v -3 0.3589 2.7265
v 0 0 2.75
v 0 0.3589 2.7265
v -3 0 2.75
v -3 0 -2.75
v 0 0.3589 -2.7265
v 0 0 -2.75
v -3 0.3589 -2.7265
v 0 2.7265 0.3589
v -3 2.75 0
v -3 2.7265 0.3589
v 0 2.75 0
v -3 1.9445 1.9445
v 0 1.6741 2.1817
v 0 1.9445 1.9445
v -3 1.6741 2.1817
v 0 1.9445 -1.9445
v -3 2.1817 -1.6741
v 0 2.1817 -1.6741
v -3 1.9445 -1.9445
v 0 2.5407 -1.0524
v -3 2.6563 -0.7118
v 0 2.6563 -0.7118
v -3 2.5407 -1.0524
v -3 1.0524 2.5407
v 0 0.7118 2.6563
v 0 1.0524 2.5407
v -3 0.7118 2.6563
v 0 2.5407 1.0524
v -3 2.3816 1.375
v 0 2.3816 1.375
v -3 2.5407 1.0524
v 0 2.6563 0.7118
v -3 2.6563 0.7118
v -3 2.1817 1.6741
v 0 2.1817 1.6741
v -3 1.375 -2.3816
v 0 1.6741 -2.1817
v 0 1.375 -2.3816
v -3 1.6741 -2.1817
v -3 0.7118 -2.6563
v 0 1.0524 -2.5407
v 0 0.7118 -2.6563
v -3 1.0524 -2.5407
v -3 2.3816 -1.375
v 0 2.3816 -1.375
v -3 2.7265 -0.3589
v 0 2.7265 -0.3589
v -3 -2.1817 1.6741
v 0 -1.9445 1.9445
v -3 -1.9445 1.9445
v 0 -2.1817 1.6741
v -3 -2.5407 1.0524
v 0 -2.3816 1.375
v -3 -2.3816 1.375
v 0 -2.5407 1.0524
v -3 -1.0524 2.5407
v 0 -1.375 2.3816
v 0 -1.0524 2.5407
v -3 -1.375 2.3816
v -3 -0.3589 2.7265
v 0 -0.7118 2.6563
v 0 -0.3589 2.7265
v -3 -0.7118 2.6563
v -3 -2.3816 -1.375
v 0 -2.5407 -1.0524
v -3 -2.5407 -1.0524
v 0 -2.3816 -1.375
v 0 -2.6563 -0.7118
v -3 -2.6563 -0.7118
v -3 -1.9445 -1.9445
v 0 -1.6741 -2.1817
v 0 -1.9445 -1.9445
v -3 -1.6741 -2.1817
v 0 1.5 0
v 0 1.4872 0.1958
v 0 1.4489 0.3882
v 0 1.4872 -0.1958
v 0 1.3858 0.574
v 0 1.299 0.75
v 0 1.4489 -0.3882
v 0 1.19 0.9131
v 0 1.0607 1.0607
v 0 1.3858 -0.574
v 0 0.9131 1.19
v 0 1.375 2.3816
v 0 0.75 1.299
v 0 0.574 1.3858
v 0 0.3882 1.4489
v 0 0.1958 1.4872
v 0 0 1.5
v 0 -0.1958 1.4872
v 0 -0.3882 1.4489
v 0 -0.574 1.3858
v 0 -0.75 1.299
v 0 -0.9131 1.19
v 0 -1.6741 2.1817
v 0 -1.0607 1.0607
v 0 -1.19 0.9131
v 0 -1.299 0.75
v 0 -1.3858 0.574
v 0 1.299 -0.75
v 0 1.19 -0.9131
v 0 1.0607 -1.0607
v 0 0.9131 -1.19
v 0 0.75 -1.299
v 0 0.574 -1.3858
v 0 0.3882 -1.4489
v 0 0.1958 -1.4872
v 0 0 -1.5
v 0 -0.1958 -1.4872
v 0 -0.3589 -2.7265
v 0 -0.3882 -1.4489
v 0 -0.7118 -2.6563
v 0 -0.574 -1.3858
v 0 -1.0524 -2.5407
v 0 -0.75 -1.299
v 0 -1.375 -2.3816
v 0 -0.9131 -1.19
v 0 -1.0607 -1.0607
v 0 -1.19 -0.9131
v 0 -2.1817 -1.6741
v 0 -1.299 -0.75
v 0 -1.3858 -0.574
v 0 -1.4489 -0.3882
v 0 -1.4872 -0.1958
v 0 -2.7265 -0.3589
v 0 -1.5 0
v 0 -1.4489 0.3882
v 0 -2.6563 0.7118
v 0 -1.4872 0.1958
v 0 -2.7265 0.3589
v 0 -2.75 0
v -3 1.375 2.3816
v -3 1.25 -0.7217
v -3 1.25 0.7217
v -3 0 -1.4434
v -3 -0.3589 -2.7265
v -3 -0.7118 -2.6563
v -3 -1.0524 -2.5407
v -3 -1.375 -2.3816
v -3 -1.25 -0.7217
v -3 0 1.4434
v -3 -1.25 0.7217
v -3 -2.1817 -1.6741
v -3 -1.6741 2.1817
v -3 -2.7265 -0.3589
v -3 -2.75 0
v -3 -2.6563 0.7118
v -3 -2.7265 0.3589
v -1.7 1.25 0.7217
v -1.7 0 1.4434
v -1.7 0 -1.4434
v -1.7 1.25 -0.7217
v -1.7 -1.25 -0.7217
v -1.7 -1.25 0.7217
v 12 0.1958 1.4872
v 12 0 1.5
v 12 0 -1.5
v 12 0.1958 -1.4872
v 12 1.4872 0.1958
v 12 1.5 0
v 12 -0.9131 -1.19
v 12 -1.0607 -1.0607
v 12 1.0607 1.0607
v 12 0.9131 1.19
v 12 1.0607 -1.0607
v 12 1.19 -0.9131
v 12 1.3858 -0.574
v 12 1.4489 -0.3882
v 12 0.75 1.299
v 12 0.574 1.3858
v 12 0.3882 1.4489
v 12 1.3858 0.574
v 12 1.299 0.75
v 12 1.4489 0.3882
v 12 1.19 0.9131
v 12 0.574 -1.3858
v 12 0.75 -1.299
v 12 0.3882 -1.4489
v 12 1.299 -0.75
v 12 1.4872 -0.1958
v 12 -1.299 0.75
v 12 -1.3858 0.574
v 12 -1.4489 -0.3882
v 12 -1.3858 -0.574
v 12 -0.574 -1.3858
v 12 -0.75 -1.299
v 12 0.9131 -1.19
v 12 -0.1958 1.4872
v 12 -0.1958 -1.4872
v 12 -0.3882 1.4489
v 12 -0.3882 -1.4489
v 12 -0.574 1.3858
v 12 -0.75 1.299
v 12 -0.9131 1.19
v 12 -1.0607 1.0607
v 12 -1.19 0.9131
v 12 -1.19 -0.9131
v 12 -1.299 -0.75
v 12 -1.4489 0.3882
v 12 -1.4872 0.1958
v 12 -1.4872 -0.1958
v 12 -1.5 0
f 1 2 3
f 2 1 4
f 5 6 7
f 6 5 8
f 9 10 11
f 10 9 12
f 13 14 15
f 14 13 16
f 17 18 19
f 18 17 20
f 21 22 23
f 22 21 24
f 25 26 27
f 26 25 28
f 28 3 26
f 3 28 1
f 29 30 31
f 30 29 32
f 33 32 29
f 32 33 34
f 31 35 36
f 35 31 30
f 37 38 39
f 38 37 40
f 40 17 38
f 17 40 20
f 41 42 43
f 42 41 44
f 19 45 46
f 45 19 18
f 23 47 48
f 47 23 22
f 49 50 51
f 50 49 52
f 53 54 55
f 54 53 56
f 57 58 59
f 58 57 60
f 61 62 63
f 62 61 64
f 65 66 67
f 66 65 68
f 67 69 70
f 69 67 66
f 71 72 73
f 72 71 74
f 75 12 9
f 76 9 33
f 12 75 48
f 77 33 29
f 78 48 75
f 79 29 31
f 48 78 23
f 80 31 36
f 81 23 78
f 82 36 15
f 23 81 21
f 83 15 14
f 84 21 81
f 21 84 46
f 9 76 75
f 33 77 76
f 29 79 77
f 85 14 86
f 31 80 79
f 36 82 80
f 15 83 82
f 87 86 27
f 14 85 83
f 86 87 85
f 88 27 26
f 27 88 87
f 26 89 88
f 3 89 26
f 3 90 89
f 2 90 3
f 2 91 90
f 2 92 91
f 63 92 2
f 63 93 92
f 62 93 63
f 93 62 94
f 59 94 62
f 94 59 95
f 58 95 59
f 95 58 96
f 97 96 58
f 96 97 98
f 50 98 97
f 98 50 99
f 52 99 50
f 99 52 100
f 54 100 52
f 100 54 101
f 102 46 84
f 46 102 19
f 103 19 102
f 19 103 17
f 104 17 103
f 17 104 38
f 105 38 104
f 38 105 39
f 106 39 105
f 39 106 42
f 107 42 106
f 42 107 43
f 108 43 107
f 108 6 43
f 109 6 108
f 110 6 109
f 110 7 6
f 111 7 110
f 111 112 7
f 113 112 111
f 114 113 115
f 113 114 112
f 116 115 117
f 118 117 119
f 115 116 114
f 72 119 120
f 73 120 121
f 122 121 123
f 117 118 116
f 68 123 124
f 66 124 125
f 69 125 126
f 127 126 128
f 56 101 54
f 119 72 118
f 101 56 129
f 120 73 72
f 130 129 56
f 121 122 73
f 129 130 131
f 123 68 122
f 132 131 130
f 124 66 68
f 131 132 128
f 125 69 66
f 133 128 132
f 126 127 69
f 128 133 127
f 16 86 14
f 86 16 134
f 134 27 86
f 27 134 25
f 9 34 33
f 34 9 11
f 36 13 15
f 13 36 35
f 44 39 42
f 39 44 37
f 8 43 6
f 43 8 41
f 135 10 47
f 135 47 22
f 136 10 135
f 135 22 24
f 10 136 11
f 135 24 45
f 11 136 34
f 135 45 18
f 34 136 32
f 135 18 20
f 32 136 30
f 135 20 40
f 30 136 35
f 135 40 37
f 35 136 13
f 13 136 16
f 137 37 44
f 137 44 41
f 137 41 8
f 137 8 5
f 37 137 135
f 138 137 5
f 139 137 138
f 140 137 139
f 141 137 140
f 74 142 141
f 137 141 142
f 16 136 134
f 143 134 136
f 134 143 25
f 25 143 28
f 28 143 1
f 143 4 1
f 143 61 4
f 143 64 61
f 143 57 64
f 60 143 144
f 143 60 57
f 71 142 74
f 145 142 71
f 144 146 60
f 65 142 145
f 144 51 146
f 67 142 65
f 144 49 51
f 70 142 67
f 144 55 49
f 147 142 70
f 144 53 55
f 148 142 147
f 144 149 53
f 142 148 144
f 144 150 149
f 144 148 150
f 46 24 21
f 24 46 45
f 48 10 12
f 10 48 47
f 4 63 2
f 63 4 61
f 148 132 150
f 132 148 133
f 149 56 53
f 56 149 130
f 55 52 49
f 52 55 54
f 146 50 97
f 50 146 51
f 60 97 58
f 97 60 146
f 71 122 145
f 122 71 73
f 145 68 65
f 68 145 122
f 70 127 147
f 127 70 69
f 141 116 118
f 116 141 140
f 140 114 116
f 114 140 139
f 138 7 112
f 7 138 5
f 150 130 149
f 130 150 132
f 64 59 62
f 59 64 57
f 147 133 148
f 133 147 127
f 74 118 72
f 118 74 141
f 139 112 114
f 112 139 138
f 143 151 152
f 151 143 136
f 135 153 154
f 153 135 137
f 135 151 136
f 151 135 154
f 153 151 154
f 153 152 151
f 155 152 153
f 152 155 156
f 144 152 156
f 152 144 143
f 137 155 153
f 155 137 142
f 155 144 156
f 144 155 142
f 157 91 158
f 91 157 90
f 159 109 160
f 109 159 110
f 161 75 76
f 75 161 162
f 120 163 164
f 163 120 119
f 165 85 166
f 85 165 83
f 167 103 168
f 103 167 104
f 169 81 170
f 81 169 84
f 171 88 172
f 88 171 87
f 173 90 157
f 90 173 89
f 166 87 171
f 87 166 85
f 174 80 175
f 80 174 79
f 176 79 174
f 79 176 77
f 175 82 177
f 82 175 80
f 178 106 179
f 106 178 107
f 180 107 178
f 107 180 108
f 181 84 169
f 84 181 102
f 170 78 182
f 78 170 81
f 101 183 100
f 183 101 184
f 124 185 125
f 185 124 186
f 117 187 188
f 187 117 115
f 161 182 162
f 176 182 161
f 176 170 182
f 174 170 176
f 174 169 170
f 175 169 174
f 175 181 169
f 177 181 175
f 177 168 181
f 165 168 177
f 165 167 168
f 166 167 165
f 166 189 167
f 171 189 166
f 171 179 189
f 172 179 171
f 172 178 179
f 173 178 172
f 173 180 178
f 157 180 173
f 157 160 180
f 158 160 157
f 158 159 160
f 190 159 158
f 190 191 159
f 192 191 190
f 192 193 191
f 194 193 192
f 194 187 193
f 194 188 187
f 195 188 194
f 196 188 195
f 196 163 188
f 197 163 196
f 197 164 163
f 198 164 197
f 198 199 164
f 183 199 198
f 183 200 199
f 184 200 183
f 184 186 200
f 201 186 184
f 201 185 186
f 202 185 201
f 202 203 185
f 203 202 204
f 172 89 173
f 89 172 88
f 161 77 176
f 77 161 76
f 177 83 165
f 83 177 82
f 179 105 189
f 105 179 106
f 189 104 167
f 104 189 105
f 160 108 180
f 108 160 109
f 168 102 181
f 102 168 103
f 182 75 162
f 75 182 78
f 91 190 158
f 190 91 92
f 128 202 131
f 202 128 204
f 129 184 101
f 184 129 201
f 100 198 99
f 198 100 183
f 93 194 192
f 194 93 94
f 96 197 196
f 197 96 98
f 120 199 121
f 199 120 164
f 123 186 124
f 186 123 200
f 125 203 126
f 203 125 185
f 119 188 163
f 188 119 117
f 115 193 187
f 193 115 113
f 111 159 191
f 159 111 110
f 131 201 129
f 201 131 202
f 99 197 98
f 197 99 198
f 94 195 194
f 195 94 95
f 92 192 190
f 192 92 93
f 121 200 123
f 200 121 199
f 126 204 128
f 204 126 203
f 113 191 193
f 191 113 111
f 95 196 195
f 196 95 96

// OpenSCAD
// file: ../../../lib/nutsnbolts/data-access.scad
// Norm Nuts and Bolts - a OpenSCAD library
// Copyright (C) 2012  Johannes Kneer

// This program is free software: you can redistribute it and/or modify
// it under the terms of the GNU General Public License as published by
// the Free Software Foundation, either version 3 of the License, or
// (at your option) any later version.

// This program is distributed in the hope that it will be useful,
// but WITHOUT ANY WARRANTY; without even the implied warranty of
// MERCHANTABILITY or FITNESS FOR A PARTICULAR PURPOSE.  See the
// GNU General Public License for more details.

// You should have received a copy of the GNU General Public License
// along with this program.  If not, see <http://www.gnu.org/licenses/>.


// DATABASE ACCESS FUNCTIONS AND CONSTANTS



// == CONSTANTS ==

// screw table access keys
_NB_S_DESC            = 0;
_NB_S_FAMKEY			    = 1;
_NB_S_LENGTH          = 2;
_NB_S_NOTHREAD_LENGTH = 3;

_NB_F_DESC			      = 0;
_NB_F_OUTER_DIA       = 1;
_NB_F_INNER_DIA       = 2;
_NB_F_LEAD            = 3;
_NB_F_KEY             = 4;
_NB_F_KEY_DEPTH       = 5;
_NB_F_HEAD_HEIGHT     = 6;
_NB_F_HEAD_DIA        = 7;
_NB_F_NUT_KEY         = 8;
_NB_F_NUT_HEIGHT      = 9;
_NB_F_PITCH_FINE      = 10;
_NB_F_PITCH_MEDIUM    = 11;
_NB_F_PITCH_COARSE    = 12;


// == FUNCTIONS ==

// _get_screw("descriptor")   with descriptor = M8x25
//   find the line for a general object in the data matrix

function _get_screw(n) = data_screw[search([n], data_screw)[0]];
function _get_screw_fam(n) = data_screw_fam[search([_get_screw(n)[_NB_S_FAMKEY]], data_screw_fam)[0]];

function _get_fam(n) = data_screw_fam[search([n], data_screw_fam)[0]];


// _get_XXXXX("descriptor") functions
// find a single property in the database

function _get_desc(n)        = _get_screw(n)[_NB_S_DESC];
function _get_famkey(n)         = _get_screw(n)[_NB_S_FAMKEY];
function _get_length(n)      = _get_screw(n)[_NB_S_LENGTH];
function _get_nt_length(n)   = _get_screw(n)[_NB_S_NOTHREAD_LENGTH];

function _get_outer_dia(n)   = _get_screw_fam(n)[_NB_F_OUTER_DIA];
function _get_inner_dia(n)   = _get_screw_fam(n)[_NB_F_INNER_DIA];
function _get_lead(n)        = _get_screw_fam(n)[_NB_F_LEAD];
function _get_head_height(n) = _get_screw_fam(n)[_NB_F_HEAD_HEIGHT];
function _get_head_dia(n)    = _get_screw_fam(n)[_NB_F_HEAD_DIA];
function _get_nut_key(n)     = _get_screw_fam(n)[_NB_F_NUT_KEY];
function _get_nut_height(n)  = _get_screw_fam(n)[_NB_F_NUT_HEIGHT];
function _get_fine_pitch(n)  = _get_screw_fam(n)[_NB_F_PITCH_FINE];
function _get_medium_pitch(n)  = _get_screw_fam(n)[_NB_F_PITCH_MEDIUM];
function _get_coarse_pitch(n)  = _get_screw_fam(n)[_NB_F_PITCH_COARSE];
// main file
/**********************************************************************************************************************
 **
 ** parts/vitamins/screw_M3x12.scad
 **
 ** This file renders a screw of the dimensions specified by the file name.
 **
 **********************************************************************************************************************/

include <../../../lib/nutsnbolts/cyl_head_bolt.scad>;

$fn = 48;
rotate([0, -90, 0])
	screw("M3x12"); 
